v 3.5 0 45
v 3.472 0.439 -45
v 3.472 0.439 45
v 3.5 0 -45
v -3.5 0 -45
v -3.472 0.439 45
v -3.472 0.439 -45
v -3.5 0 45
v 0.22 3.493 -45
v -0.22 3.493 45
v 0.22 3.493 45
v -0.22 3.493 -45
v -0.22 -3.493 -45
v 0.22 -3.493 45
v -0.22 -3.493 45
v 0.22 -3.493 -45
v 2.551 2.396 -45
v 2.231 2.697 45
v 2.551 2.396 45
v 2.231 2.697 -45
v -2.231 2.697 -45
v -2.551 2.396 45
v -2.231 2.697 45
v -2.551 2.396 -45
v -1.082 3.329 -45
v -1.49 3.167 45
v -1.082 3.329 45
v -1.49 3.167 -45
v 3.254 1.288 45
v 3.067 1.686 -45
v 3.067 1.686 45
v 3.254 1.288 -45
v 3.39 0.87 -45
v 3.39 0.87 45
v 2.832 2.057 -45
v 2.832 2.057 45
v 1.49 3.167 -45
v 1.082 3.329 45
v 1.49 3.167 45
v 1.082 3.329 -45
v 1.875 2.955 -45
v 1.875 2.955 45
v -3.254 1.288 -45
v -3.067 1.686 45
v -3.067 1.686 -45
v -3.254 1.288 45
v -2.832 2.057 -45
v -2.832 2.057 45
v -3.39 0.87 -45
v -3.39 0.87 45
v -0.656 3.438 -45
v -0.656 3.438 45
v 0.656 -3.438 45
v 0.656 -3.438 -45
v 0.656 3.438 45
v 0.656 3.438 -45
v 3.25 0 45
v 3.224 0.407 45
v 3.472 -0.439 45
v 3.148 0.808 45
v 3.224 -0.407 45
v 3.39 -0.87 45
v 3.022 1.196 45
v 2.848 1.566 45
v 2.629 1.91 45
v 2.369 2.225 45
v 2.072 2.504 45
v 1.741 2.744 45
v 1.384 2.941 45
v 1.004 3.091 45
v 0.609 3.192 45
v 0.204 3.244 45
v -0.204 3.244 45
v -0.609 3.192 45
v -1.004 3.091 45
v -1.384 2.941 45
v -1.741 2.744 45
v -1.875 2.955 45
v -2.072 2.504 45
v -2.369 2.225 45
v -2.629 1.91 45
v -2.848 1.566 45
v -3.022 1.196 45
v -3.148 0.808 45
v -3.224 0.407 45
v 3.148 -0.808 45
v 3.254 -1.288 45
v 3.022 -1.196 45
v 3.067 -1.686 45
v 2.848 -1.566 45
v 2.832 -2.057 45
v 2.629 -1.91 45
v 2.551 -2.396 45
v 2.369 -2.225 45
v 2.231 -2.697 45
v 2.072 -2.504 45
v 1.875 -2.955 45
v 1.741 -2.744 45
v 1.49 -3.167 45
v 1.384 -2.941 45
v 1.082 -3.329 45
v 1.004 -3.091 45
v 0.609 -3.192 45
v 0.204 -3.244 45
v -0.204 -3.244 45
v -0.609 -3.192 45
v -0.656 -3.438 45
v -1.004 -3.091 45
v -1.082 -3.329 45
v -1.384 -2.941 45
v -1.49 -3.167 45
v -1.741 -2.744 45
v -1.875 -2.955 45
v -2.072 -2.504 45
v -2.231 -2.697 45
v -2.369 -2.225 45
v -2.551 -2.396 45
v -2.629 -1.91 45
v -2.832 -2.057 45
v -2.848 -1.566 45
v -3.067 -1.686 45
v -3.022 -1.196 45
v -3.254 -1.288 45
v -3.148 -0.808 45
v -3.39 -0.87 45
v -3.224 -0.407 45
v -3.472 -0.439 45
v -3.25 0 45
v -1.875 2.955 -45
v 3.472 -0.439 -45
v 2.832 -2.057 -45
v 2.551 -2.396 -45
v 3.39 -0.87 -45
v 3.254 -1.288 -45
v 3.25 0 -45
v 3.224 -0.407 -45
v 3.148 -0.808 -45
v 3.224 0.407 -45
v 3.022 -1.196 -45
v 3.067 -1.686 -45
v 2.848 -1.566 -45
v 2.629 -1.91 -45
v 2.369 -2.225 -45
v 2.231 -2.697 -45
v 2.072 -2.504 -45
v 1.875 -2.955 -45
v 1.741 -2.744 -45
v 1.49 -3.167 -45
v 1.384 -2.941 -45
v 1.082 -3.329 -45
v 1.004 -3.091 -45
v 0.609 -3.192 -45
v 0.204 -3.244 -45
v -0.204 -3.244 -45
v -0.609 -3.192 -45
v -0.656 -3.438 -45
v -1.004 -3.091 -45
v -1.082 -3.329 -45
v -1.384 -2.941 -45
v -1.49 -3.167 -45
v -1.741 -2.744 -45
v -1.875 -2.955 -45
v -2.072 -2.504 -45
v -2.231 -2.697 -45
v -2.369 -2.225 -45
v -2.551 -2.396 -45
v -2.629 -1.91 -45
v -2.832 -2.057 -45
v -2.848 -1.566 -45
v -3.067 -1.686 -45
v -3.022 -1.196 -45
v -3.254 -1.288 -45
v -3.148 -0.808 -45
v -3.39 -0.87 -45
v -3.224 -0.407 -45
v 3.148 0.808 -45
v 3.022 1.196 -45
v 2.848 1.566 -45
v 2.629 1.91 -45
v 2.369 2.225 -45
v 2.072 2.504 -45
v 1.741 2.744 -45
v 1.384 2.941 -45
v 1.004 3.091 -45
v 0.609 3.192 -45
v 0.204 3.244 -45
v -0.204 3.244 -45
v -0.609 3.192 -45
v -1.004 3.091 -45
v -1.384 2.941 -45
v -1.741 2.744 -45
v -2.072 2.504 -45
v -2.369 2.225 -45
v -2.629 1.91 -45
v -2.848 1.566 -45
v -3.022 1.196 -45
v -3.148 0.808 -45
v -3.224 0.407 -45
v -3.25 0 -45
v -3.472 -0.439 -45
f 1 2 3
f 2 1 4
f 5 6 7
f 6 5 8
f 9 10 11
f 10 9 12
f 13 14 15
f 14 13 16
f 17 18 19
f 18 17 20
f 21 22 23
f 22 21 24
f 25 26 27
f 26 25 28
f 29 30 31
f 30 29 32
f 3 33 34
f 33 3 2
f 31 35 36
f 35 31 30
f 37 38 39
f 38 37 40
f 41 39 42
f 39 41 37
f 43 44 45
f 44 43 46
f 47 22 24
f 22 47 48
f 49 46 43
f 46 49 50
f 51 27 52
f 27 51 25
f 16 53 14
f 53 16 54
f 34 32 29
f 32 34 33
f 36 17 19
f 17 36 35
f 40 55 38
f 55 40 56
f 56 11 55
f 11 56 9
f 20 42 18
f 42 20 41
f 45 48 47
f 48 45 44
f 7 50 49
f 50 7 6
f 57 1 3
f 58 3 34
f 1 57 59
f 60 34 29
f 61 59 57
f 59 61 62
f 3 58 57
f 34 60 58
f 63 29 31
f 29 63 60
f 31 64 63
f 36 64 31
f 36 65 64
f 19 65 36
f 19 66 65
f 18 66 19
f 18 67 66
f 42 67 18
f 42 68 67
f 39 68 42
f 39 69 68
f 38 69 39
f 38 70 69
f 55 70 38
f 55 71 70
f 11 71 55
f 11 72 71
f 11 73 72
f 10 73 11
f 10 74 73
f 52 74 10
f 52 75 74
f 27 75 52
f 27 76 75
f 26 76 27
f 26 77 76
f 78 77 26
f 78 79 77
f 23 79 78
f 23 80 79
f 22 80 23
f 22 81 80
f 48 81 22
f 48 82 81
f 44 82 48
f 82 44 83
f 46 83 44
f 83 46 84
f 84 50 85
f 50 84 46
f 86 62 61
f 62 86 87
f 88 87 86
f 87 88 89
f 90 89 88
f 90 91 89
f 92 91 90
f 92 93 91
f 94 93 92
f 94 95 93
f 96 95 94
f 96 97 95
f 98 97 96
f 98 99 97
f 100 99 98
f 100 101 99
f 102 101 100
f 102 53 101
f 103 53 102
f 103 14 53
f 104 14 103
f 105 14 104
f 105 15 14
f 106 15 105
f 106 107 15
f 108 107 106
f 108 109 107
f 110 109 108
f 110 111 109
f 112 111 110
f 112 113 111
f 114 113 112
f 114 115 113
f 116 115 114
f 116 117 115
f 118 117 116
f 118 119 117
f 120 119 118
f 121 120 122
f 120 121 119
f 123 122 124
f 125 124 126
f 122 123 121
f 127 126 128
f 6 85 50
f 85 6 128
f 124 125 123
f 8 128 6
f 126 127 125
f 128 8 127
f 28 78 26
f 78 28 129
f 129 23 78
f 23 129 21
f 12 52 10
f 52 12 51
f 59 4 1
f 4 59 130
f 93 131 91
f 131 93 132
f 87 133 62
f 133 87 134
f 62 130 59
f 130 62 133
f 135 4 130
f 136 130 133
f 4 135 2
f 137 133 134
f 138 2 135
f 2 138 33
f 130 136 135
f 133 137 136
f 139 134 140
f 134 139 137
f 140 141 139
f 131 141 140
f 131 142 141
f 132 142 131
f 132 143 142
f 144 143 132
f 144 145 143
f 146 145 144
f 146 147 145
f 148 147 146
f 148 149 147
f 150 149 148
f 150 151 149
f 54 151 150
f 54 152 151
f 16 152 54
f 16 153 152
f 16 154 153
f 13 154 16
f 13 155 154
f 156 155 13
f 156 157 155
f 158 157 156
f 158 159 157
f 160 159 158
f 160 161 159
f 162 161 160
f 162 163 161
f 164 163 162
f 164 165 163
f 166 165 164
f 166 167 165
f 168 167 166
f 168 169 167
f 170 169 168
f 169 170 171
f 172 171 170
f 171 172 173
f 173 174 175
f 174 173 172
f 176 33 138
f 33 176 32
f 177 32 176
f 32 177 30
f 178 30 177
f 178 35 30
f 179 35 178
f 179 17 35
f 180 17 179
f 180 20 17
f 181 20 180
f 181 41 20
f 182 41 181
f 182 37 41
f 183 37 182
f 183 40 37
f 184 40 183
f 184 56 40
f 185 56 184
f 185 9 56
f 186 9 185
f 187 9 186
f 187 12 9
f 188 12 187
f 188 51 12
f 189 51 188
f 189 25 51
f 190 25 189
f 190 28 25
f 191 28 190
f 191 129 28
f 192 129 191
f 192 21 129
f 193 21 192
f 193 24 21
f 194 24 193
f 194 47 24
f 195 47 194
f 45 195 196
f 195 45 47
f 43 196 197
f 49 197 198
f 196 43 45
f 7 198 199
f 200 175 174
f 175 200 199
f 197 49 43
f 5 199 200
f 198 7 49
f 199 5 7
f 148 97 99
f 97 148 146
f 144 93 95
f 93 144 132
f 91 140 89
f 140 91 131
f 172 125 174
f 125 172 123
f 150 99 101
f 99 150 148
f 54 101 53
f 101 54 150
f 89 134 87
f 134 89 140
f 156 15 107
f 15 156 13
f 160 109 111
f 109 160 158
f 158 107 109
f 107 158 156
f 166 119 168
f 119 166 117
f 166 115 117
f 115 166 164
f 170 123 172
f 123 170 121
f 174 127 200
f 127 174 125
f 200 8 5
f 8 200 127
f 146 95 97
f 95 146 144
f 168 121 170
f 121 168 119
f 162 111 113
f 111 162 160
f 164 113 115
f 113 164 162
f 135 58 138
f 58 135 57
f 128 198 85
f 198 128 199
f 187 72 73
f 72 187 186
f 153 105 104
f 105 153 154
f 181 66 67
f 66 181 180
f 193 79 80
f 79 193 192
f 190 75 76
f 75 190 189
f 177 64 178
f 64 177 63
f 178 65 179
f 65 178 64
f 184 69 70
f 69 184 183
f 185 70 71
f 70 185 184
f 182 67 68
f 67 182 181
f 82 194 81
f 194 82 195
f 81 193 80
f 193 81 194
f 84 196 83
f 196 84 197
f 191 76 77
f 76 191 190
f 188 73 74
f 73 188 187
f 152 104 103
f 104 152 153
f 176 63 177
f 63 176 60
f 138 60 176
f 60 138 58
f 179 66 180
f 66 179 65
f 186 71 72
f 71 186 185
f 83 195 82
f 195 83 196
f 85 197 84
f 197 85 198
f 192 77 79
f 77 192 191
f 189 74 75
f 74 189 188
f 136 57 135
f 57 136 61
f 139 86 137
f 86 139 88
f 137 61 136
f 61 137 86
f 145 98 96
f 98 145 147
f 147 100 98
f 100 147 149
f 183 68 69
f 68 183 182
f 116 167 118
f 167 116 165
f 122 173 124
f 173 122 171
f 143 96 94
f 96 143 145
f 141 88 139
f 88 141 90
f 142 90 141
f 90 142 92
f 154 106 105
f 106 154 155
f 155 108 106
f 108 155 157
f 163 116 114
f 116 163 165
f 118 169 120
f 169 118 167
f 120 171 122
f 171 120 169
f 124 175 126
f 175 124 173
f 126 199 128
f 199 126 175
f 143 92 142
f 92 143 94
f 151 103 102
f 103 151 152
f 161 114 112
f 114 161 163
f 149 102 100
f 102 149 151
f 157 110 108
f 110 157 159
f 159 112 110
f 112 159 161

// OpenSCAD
$fn = 50;


difference() {
	union() {
		translate(v = [0, 0, -45.0000000000]) {
			cylinder(h = 90, r = 3.5000000000);
		}
	}
	union() {
		translate(v = [0, 0, -100.0000000000]) {
			cylinder(h = 200, r = 3.2500000000);
		}
	}
}
